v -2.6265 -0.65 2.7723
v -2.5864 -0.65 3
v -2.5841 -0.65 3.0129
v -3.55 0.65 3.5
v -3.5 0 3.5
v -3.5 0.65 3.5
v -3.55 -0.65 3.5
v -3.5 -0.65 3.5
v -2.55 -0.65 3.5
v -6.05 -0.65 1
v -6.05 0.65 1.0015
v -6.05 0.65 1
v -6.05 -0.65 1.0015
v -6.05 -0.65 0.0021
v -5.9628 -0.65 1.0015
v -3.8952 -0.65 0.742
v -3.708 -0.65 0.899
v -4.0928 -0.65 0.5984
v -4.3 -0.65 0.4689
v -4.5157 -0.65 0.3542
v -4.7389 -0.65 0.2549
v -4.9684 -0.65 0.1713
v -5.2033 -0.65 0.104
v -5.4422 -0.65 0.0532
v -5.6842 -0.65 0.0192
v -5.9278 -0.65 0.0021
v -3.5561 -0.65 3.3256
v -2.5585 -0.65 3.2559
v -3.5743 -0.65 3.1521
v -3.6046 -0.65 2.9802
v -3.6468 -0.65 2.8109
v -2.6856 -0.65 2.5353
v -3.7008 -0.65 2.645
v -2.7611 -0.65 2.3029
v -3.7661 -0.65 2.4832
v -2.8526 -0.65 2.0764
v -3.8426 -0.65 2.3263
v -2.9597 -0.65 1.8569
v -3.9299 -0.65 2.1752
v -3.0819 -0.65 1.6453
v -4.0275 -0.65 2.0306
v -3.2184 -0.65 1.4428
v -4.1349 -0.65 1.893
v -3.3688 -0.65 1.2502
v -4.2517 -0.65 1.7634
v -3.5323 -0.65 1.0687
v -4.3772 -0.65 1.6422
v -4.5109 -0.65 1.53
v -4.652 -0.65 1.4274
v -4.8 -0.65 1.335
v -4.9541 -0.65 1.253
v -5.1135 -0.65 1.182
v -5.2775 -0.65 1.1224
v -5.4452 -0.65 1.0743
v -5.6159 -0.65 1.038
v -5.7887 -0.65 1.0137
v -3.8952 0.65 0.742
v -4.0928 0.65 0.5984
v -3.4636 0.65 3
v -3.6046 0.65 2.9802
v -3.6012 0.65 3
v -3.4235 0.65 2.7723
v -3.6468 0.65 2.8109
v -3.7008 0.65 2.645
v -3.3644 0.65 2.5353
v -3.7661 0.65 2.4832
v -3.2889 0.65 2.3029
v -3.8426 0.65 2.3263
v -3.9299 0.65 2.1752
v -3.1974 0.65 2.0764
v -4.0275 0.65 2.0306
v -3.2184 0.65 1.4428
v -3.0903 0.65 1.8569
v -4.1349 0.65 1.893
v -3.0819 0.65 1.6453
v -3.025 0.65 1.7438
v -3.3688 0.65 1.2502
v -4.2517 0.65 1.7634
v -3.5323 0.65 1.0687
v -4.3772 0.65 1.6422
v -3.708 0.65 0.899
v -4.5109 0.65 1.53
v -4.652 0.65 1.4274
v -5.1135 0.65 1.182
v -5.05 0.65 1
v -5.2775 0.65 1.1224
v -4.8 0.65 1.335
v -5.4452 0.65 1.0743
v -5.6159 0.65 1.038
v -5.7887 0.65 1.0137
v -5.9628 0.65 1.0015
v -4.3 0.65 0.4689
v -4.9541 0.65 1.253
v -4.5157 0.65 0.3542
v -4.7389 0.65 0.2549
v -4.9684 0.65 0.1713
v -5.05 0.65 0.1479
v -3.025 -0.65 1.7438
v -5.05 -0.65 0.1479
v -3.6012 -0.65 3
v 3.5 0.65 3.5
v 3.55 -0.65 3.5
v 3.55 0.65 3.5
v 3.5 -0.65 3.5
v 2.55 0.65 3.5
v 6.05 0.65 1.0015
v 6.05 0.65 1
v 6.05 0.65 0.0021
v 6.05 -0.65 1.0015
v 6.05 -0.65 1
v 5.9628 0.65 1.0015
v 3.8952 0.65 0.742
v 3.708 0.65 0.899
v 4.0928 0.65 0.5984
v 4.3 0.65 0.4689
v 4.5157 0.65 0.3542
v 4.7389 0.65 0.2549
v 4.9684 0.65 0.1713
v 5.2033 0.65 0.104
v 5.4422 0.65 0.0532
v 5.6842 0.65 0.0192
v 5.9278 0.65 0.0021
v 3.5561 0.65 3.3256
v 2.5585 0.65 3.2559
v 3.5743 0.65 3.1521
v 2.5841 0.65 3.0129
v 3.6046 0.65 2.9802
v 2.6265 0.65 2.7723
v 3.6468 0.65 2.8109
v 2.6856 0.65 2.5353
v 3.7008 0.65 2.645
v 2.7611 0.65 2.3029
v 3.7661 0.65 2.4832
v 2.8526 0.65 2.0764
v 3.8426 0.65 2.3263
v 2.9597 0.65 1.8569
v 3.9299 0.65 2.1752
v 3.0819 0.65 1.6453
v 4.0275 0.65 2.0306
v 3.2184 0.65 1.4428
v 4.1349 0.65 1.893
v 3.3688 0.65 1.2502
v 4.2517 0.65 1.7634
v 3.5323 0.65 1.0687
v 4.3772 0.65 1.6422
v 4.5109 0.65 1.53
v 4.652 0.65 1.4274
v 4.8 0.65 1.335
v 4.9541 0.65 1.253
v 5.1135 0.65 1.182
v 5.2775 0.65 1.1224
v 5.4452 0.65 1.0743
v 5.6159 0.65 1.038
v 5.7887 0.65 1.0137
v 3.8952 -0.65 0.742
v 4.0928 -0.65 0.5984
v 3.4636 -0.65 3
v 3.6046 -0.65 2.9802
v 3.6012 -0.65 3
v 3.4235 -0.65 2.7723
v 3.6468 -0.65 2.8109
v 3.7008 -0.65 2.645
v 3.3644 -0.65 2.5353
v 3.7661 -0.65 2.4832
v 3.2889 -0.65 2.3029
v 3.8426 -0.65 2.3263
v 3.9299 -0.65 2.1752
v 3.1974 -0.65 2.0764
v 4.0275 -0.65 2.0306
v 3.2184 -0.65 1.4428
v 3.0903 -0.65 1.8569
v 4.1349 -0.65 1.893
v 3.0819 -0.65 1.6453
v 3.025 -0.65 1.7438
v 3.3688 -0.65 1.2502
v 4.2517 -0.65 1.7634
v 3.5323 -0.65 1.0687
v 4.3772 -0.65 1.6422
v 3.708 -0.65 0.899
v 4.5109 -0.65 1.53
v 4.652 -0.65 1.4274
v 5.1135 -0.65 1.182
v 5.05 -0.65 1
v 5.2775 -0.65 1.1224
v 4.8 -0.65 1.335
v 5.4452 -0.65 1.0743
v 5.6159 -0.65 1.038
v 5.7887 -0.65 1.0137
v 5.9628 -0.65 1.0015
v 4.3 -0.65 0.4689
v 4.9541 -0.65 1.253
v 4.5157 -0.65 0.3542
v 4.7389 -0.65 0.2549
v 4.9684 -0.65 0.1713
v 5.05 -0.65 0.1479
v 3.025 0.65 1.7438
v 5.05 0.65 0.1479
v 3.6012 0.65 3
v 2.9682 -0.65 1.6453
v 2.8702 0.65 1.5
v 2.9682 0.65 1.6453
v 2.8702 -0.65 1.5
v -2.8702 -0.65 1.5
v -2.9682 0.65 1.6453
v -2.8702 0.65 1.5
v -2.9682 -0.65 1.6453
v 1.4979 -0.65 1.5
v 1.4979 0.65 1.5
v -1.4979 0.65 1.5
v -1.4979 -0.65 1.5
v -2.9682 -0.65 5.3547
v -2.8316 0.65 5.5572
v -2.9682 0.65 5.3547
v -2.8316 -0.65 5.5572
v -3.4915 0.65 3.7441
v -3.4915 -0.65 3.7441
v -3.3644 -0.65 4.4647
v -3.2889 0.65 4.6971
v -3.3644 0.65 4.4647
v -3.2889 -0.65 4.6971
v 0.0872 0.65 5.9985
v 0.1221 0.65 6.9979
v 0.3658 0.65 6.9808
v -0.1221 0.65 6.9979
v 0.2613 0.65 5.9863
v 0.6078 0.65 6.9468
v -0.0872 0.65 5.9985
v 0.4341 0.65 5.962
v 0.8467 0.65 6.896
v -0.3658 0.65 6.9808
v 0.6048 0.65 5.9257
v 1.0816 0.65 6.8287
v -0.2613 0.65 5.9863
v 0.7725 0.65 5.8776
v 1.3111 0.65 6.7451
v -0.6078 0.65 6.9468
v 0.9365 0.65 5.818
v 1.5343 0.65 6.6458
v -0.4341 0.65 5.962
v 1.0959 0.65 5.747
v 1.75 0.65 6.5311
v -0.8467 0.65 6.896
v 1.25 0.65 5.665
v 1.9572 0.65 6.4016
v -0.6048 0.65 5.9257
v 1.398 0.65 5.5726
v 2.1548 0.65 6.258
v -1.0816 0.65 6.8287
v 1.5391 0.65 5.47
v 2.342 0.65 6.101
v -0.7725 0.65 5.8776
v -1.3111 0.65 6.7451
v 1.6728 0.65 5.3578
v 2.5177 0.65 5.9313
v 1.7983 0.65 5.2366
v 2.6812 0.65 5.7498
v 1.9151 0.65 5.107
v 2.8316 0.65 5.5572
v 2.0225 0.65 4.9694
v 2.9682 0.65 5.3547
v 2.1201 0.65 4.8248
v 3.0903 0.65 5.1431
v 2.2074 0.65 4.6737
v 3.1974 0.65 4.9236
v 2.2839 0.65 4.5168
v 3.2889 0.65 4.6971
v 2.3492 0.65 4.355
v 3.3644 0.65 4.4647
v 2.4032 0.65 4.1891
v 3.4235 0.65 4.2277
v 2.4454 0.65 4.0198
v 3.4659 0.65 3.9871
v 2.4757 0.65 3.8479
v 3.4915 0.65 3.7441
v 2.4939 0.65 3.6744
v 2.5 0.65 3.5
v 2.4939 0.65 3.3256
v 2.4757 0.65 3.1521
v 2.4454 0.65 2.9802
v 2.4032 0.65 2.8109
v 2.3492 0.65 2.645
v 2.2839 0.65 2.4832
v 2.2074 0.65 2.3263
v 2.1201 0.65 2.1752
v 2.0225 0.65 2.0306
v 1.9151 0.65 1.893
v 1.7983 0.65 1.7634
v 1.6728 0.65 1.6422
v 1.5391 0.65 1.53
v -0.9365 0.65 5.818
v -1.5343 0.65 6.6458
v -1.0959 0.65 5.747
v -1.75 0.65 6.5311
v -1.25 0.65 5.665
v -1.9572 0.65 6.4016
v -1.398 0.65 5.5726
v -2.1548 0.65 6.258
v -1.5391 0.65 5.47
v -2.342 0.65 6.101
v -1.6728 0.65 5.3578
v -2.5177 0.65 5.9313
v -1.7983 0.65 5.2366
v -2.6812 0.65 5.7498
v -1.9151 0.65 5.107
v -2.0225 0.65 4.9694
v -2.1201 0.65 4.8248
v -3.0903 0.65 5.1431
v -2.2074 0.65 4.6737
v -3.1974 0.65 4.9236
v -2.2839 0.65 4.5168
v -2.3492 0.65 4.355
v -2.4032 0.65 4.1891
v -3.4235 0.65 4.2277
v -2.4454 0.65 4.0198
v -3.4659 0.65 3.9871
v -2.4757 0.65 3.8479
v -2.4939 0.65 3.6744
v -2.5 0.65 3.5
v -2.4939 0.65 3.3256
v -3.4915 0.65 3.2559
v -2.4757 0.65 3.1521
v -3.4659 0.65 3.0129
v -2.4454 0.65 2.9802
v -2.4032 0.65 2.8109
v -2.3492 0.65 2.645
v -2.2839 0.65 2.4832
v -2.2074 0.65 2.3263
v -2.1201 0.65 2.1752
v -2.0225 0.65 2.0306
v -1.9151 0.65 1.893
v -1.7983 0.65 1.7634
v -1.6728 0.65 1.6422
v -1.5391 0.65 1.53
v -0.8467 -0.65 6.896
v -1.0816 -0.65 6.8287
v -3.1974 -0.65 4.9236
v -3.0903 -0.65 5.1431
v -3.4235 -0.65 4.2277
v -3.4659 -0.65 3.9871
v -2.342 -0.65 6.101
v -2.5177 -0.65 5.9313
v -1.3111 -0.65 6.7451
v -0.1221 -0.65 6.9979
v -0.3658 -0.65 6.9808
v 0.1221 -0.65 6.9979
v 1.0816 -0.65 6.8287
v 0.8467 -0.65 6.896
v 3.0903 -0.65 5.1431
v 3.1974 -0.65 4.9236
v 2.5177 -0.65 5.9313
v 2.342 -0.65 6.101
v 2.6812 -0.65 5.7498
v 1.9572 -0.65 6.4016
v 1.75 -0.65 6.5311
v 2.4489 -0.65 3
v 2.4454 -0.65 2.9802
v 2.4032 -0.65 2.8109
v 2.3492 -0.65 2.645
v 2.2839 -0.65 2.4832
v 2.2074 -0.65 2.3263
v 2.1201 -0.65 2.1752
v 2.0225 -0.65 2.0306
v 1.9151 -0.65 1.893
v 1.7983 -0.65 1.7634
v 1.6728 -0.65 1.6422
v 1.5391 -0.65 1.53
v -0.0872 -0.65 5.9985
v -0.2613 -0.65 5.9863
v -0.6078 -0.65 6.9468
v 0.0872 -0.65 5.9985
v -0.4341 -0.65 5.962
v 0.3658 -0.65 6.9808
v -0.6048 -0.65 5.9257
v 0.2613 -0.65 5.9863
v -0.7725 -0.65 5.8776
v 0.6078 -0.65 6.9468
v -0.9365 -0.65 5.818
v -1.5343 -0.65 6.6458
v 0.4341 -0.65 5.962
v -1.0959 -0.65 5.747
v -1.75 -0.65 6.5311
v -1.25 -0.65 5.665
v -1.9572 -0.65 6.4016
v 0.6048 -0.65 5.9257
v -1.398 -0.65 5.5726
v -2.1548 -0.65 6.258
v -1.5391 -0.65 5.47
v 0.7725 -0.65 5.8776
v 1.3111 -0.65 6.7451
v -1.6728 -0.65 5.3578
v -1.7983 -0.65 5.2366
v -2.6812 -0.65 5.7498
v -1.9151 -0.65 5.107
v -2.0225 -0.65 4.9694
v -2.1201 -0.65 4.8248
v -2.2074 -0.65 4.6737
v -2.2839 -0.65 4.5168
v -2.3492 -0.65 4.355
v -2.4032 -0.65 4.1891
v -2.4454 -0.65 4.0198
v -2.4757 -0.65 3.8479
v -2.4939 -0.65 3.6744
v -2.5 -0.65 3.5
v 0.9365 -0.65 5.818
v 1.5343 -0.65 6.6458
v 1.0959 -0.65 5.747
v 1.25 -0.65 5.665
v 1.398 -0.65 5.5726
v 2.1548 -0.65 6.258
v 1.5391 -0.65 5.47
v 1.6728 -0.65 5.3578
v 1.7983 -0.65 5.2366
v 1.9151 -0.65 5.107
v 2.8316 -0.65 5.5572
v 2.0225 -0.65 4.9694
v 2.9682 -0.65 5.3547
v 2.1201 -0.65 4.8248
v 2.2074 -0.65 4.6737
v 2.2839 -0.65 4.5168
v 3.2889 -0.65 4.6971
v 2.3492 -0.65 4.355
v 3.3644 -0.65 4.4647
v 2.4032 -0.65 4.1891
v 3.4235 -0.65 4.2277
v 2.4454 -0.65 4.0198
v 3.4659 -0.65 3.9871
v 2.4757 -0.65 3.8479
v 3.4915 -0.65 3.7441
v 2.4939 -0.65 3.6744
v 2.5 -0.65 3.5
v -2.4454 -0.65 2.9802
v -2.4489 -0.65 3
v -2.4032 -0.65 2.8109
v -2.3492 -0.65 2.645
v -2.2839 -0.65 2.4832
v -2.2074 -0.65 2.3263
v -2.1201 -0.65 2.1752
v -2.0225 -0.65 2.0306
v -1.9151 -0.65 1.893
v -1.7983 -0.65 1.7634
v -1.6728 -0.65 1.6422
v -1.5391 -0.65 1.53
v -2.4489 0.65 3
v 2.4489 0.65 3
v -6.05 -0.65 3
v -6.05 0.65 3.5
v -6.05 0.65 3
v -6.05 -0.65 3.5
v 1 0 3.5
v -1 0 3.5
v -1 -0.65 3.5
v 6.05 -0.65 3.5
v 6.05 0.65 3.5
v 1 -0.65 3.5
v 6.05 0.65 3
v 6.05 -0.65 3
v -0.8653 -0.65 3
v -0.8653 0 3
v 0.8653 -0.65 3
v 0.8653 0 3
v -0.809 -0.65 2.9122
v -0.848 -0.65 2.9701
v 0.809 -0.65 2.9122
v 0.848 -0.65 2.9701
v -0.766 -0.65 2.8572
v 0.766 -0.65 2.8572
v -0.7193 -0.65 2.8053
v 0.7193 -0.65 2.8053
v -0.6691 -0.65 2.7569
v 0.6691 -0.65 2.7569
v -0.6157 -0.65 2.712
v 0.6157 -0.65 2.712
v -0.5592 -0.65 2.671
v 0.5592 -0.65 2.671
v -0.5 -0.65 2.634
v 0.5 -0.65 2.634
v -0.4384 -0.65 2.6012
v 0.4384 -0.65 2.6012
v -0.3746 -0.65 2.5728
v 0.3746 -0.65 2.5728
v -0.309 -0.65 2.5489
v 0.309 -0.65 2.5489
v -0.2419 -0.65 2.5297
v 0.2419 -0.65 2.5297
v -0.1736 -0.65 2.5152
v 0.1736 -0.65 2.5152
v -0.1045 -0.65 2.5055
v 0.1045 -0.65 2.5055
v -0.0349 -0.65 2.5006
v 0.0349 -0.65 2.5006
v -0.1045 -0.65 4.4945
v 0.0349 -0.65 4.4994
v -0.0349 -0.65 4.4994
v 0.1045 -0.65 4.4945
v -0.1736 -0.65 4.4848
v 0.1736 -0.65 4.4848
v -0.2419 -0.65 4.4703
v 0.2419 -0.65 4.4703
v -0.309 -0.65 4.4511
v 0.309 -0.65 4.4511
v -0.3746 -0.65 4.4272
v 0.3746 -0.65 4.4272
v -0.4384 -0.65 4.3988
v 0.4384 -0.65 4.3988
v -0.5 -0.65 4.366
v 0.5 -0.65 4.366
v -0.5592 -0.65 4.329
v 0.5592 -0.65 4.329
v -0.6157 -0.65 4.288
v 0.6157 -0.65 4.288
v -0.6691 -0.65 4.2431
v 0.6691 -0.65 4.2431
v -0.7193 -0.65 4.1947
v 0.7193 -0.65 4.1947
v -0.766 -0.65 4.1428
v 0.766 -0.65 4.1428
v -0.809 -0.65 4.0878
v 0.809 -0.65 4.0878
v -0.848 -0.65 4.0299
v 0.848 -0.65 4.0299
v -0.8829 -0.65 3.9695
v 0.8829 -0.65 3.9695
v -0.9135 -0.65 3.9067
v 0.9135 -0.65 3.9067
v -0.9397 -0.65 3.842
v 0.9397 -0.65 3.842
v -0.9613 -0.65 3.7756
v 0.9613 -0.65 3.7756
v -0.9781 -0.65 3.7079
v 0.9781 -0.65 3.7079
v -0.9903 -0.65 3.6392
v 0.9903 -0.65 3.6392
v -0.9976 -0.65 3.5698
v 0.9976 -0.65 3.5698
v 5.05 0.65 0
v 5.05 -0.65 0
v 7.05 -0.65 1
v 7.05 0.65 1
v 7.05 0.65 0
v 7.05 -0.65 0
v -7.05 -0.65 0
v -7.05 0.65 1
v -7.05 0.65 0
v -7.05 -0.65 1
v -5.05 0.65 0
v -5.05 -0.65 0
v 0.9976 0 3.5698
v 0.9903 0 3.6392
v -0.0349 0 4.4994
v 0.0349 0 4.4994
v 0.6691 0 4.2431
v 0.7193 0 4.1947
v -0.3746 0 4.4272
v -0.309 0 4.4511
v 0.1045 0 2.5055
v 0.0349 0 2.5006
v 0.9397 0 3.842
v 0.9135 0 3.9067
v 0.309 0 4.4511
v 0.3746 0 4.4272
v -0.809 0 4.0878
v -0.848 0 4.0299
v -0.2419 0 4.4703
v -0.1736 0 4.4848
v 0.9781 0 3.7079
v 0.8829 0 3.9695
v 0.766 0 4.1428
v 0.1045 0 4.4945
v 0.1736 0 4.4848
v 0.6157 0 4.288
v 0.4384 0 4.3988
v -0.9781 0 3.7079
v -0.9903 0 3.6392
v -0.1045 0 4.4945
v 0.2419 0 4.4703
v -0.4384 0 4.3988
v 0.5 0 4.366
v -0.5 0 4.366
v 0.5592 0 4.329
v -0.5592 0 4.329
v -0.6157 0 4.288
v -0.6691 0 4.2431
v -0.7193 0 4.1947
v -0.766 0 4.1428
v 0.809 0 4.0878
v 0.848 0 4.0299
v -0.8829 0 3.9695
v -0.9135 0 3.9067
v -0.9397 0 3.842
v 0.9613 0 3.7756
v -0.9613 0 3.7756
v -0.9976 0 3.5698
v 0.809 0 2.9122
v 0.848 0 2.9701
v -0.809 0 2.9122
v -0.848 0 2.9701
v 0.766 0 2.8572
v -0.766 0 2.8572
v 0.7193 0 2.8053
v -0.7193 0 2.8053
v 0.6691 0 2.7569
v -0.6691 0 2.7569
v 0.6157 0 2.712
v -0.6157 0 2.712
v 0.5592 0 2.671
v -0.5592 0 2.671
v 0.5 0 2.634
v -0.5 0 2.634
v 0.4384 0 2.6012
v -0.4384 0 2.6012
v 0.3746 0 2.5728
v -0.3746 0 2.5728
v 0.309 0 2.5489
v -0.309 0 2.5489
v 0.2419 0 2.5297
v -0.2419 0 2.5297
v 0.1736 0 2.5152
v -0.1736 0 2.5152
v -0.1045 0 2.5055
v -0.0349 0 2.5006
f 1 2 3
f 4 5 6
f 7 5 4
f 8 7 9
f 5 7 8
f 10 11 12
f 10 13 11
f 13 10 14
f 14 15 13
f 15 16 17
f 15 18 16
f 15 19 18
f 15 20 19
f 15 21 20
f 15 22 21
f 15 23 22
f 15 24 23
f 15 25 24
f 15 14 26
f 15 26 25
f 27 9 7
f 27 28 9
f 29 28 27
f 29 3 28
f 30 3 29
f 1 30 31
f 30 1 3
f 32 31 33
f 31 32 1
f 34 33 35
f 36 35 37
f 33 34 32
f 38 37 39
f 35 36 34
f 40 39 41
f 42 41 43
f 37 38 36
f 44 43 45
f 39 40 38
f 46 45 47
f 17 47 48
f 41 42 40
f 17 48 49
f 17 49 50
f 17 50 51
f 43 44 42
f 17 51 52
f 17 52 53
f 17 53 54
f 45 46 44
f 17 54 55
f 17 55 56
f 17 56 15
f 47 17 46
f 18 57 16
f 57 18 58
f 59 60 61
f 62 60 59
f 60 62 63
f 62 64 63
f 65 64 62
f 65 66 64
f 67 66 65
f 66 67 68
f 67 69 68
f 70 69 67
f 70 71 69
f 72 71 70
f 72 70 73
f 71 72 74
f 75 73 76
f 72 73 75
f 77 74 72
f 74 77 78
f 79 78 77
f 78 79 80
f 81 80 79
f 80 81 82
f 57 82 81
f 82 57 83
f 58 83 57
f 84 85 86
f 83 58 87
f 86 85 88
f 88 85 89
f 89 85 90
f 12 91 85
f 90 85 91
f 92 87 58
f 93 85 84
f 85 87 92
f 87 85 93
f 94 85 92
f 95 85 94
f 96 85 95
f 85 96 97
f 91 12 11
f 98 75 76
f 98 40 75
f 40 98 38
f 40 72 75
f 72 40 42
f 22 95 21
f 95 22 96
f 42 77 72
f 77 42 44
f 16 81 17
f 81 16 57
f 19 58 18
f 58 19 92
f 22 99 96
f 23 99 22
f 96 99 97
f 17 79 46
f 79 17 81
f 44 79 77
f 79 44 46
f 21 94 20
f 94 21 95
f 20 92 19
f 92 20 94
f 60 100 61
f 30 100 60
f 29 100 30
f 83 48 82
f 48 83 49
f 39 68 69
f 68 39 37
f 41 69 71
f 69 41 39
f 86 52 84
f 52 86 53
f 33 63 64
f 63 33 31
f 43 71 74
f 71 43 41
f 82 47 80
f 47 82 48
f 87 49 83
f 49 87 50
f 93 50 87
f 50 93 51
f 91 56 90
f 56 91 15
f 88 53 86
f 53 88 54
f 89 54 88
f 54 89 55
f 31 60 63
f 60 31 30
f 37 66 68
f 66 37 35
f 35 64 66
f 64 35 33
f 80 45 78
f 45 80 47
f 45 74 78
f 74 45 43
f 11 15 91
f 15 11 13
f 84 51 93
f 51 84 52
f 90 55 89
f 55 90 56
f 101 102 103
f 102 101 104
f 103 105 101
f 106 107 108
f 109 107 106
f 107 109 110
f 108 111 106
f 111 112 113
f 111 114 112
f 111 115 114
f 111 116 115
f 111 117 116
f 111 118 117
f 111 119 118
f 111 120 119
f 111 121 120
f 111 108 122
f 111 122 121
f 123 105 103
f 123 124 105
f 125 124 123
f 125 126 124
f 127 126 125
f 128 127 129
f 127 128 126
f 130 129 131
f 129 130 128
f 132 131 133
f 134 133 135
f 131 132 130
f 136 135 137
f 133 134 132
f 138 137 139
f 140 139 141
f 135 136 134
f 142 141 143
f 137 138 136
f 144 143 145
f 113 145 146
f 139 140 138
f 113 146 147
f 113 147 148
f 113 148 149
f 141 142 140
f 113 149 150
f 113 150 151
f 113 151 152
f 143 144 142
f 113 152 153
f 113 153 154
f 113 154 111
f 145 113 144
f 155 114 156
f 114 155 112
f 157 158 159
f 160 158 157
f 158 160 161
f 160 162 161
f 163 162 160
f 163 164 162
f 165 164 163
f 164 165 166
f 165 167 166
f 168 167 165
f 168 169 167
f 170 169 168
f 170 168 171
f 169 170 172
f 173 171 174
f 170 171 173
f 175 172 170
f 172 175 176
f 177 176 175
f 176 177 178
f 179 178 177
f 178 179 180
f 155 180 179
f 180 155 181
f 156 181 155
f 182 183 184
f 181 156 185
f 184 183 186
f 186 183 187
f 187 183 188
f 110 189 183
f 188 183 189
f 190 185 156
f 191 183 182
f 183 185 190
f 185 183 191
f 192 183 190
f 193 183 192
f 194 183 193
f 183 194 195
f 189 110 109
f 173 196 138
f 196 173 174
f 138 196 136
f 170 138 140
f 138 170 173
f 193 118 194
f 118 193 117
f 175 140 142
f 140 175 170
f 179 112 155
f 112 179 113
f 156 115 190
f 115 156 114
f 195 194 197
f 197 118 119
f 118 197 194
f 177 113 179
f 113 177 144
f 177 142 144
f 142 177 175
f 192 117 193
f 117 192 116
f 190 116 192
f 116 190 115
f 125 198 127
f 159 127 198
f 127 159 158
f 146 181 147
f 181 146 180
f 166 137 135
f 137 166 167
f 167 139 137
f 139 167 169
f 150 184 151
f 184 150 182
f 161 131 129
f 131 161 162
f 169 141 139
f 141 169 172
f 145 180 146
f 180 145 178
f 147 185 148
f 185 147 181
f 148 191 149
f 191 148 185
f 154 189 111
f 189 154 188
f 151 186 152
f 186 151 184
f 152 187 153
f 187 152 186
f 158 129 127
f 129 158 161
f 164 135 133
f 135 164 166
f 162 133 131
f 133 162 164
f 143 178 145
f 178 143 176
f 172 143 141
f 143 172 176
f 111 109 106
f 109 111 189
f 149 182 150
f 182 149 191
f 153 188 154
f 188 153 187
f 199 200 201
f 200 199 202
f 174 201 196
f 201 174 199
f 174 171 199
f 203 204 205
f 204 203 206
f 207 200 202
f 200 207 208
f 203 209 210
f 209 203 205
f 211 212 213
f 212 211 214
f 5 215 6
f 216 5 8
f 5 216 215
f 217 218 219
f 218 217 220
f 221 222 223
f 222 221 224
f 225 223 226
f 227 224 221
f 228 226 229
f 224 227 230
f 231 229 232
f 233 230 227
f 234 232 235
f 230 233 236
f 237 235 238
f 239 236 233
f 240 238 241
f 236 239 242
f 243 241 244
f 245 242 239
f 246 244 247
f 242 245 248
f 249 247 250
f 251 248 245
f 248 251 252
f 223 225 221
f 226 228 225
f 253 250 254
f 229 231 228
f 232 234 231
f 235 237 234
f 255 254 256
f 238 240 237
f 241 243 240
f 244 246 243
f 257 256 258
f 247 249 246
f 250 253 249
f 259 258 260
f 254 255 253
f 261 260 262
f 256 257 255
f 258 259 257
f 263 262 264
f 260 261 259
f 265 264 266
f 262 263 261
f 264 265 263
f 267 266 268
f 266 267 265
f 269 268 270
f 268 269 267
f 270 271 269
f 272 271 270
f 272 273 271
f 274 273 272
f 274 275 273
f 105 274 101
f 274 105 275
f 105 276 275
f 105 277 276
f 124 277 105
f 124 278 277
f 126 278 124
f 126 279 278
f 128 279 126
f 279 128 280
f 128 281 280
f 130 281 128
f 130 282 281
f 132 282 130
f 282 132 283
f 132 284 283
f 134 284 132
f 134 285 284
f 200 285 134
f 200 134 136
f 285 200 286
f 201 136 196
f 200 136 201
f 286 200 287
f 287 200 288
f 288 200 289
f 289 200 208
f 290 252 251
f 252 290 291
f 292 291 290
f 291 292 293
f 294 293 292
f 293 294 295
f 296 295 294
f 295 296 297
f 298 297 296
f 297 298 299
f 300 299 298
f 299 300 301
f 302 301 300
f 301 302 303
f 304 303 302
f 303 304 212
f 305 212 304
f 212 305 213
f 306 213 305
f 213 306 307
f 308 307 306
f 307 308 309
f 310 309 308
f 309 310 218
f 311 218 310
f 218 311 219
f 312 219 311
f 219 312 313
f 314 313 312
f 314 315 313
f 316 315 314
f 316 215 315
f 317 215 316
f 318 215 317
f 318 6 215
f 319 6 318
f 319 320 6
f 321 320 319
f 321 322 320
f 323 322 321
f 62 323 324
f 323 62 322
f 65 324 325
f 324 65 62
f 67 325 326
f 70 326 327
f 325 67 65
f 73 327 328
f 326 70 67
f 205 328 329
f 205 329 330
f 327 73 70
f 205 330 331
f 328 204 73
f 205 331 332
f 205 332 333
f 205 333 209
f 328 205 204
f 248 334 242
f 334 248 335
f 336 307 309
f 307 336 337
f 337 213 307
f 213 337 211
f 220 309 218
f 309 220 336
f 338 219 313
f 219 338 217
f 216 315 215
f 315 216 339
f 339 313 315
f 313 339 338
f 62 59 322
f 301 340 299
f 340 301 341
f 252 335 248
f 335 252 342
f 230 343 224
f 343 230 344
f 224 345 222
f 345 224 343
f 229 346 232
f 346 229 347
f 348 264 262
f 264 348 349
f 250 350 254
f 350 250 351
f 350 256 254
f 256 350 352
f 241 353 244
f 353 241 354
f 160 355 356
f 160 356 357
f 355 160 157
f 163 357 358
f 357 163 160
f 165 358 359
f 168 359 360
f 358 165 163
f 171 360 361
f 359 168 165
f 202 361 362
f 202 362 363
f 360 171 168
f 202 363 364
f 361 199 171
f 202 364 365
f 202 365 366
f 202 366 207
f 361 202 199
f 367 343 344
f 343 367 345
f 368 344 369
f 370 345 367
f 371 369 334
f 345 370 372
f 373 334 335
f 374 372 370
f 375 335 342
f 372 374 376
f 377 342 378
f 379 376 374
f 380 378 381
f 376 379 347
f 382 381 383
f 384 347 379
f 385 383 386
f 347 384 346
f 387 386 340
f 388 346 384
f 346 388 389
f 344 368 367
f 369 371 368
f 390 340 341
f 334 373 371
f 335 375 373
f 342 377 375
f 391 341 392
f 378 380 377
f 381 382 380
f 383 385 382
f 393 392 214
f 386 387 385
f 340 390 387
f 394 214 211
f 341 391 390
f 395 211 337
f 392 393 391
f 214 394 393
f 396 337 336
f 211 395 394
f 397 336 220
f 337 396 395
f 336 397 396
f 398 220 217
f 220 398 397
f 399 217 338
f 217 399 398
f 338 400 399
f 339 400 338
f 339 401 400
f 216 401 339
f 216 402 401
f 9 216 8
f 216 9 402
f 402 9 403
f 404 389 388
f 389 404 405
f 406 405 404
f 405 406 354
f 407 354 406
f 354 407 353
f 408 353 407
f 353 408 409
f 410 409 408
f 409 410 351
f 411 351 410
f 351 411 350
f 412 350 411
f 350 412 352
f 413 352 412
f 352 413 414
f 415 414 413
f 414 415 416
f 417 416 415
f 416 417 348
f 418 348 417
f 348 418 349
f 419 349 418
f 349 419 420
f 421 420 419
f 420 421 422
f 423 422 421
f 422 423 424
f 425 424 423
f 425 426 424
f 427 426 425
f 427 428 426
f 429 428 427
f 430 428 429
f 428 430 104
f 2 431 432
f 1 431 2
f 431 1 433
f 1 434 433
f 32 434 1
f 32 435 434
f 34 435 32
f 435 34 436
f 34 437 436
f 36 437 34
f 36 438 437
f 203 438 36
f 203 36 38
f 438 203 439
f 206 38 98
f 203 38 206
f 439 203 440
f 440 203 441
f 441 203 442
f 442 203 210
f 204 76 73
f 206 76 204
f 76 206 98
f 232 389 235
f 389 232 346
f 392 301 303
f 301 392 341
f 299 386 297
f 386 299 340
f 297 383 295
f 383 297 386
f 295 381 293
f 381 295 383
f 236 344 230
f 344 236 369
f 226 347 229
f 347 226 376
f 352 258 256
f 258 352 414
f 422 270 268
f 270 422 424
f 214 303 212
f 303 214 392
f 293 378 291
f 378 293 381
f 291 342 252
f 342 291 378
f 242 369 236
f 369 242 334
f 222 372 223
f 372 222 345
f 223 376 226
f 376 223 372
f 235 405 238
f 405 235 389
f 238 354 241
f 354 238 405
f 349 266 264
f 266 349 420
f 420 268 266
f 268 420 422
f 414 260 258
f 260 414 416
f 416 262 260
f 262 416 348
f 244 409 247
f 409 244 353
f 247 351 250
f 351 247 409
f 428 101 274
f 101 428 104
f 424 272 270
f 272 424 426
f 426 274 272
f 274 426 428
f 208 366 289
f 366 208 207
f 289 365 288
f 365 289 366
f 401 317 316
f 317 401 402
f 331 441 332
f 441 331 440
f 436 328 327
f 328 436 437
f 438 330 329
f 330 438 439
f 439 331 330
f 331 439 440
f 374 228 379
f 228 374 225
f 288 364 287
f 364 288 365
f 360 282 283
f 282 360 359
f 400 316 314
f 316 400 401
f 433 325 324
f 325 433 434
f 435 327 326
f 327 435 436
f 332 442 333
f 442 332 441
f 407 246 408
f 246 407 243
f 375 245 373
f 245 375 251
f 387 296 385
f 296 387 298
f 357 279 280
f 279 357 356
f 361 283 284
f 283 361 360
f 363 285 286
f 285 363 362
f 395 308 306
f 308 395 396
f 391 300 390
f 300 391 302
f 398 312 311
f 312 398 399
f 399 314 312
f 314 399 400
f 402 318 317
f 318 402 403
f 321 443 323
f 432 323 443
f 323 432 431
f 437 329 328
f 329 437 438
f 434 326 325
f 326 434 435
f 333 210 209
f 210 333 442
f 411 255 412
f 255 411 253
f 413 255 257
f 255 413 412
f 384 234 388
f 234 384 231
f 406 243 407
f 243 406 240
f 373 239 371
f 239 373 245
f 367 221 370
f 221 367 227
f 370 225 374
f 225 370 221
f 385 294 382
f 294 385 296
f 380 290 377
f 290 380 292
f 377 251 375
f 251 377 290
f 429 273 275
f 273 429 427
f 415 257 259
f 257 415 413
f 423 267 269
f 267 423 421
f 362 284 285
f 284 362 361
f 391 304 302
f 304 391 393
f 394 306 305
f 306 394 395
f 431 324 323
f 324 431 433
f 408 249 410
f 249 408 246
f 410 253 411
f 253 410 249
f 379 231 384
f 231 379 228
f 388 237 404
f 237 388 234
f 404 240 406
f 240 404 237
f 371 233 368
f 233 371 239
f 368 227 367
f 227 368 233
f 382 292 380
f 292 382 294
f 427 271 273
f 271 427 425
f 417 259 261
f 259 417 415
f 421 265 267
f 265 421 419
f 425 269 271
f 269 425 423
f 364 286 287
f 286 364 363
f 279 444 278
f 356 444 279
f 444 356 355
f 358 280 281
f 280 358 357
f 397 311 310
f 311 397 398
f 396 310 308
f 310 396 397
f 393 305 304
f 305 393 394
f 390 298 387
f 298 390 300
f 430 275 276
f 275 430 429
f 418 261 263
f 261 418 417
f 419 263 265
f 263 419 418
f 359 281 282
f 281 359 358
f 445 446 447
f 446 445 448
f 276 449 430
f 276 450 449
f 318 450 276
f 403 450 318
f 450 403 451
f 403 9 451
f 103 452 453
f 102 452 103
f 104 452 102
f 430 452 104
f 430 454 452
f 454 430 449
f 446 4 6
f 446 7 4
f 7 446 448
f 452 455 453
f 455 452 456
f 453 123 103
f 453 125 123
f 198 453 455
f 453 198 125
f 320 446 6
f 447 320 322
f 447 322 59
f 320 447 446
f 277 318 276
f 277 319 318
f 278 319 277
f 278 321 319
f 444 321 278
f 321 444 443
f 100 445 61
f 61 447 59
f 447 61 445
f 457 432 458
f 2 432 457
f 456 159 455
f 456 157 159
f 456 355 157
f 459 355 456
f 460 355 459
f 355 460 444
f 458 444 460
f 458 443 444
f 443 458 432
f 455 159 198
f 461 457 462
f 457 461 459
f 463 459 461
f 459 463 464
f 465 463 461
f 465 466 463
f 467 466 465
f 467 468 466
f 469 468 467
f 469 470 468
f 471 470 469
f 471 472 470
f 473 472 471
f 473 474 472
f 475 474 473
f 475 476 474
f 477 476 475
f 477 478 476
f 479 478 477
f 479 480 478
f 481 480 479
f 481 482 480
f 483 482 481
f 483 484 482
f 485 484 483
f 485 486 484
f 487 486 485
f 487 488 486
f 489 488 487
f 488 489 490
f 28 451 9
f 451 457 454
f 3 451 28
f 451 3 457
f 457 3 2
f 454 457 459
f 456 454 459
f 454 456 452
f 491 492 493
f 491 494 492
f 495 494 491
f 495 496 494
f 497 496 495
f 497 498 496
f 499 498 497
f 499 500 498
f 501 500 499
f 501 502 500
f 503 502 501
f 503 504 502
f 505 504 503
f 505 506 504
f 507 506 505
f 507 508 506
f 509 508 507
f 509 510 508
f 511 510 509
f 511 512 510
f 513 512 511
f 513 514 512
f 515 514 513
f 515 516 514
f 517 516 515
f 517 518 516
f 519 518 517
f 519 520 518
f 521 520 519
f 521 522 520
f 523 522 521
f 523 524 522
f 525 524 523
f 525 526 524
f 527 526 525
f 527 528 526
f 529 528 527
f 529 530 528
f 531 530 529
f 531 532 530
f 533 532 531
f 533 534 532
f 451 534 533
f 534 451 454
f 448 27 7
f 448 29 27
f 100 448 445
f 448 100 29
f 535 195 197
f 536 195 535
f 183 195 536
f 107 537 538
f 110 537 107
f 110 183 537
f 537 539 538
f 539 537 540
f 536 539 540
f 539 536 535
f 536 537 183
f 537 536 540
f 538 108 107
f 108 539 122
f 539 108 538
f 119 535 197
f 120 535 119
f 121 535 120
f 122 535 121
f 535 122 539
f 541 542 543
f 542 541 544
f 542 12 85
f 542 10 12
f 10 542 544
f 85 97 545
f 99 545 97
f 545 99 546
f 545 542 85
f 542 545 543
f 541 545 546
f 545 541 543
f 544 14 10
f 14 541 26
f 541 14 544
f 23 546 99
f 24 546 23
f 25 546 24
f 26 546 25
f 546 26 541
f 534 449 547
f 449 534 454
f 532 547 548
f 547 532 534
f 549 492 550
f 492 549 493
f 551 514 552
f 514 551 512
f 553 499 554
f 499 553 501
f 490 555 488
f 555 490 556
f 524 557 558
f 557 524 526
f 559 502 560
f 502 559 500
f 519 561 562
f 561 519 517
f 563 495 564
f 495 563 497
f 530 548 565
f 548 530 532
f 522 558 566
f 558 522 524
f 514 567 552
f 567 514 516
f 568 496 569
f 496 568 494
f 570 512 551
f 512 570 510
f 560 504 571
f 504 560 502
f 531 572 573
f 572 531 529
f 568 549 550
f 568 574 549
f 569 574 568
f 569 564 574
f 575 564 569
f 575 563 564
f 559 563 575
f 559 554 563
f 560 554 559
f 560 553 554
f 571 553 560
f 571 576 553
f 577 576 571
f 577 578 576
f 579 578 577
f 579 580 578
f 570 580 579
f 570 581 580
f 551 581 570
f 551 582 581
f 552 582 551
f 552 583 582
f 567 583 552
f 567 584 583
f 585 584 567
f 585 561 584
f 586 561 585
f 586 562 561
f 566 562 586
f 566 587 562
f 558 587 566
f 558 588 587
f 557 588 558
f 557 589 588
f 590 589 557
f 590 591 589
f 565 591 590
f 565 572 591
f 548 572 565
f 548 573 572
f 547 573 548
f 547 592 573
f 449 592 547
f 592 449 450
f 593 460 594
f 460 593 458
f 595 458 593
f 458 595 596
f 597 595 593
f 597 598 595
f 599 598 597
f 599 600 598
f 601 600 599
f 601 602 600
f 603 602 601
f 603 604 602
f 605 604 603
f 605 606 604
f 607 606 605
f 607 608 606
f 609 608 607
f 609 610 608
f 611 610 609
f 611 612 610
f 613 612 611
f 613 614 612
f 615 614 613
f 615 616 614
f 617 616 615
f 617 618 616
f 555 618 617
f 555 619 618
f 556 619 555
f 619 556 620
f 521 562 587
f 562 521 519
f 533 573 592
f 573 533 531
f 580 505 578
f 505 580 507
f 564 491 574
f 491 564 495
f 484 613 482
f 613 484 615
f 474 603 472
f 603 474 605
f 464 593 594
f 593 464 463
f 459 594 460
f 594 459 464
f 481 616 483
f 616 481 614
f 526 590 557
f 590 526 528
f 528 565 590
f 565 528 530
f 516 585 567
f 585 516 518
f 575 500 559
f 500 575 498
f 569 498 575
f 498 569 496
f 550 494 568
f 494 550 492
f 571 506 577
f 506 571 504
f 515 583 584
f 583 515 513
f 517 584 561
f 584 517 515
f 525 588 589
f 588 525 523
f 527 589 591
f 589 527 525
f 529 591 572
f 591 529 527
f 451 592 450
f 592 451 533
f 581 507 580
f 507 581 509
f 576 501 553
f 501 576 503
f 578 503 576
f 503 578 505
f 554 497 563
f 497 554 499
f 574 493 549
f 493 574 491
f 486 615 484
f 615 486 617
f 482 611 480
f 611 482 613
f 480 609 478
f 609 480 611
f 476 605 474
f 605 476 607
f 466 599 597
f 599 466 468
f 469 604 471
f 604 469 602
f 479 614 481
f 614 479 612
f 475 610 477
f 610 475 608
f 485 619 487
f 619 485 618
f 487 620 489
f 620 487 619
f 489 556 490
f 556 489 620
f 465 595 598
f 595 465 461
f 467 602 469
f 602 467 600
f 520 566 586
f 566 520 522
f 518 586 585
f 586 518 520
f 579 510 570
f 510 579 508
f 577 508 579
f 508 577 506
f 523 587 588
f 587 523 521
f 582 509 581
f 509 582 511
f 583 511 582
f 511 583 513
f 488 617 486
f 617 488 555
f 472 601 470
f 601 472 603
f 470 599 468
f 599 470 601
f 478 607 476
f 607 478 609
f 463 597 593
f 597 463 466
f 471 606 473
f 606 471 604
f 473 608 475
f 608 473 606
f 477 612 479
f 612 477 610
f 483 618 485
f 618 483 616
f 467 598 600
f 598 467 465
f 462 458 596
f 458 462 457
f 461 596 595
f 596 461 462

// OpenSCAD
$fn=90;
// maten in centimeter
breedte_vlak=11.5;
breedte_randje=0.3;
breedte_overall=breedte_vlak+2*breedte_randje;
breedte_hoek=1.0;
breedte_ondervlak=breedte_vlak-2*breedte_hoek;
diepte_vlak=1.0;
diepte_randje=0.3;
diepte_overall=diepte_vlak+diepte_randje;
hoogte_vlak=4.0;
hoogte_randje=0.3;
hoogte_overall=hoogte_vlak+hoogte_randje;
hoogte_ondervlak=3.5;
dikte_vlak=hoogte_vlak-hoogte_ondervlak;
boog_straal_boven=hoogte_ondervlak;
boog_straal_onder=hoogte_ondervlak-1;
boog1_x=breedte_overall/2+boog_straal_boven-1;
boog1_y=hoogte_randje;
boog1_z=-boog_straal_boven-dikte_vlak;
boog2_x=-breedte_overall/2-boog_straal_boven+1;
boog2_y=boog1_y;
boog2_z=boog1_z;
voetstuk_breedte=2.0;
voetstuk_diepte=diepte_overall;
voetstuk_hoogte=1.0;
voetstuk1_x=boog1_x-voetstuk_breedte;
voetstuk1_y=boog_straal_boven-voetstuk_hoogte;
voetstuk1_z=-boog_straal_boven;
voetstuk2_x=voetstuk_breedte;
voetstuk2_y=voetstuk1_y;
bovenvoetstuk1_x=breedte_overall/2-voetstuk_breedte;
bovenvoetstuk1_y=-diepte_overall/2;
bovenvoetstuk1_z=-voetstuk_hoogte;

module vlak() {
    translate([-breedte_overall/2,-diepte_overall/2,-dikte_vlak]) {
        cube([breedte_overall, diepte_overall, dikte_vlak], center=false);
    }    
}

module front_rand() {
    translate([-breedte_overall/2,-diepte_overall/2,0]) {
        cube([breedte_overall, diepte_randje, hoogte_randje], center=false);
    }    
}

module zij_rand_links() {
    translate([-breedte_overall/2,-diepte_overall/2,0]) {
        cube([breedte_randje, diepte_overall, hoogte_randje], center=false);
    }    
}

module zij_rand_rechts() {
    mirror() zij_rand_links(); 
}

// snippet    translate([0,0,0]) rotate(180,[1,0,1]) 

module boog_outer() {
    translate([0,0,0]) // rotate(180,[1,0,1]) 
        linear_extrude(diepte_overall) intersection(){square(boog_straal_boven);circle(boog_straal_boven);}
}

module boog_inner() {
    translate([0,0,0]) // rotate(180,[1,0,1]) 
        linear_extrude(diepte_overall) intersection(){square(boog_straal_onder);circle(boog_straal_onder);}
}

module boog1() {
    translate([boog1_x,diepte_overall/2,0]) rotate(-180,[0,1,0]) rotate(90,[1,0,0]) difference() {
        boog_outer();
        boog_inner();
    }
}
        
module boog2() {
    translate([boog2_x,-diepte_overall/2,0])   rotate(-90,[1,0,0]) difference() {
        boog_outer();
        boog_inner();
    }
}

module voet1() {
    translate([voetstuk1_x,-voetstuk_diepte/2,voetstuk1_z]) {
        cube([voetstuk_breedte, voetstuk_diepte, voetstuk_hoogte], center=false);
    }    
}

module voet2() {
    mirror() voet1();    
}

module bovenvoet1() {
    translate([bovenvoetstuk1_x,bovenvoetstuk1_y,bovenvoetstuk1_z]) {
        cube([voetstuk_breedte, voetstuk_diepte, voetstuk_hoogte], center=false);
    }    
}

module bovenvoet2() {
    mirror() bovenvoet1();    
}

module boorgat1() {
    union() {
        translate([breedte_vlak/2-0.5,diepte_randje/2,-1]) {
            cylinder(h=4,d=0.45, center=false);
        } 
        translate([breedte_vlak/2-0.5,diepte_randje/2,-2.7]) {
            cylinder(h=2,d=0.75, center=false);
        } 
    }
}

module boorgat2() { mirror() boorgat1(); }

module voetstuk() {
    union() {
        vlak();
        front_rand();
        zij_rand_links();
        zij_rand_rechts();
        boog1();
        boog2();
        voet1();
        voet2();
        bovenvoet1();
        bovenvoet2();
    }
}

module voetstuk_compleet() {
    difference() {
        voetstuk();
        boorgat1();
        boorgat2();
    }
}

//voetstuk_compleet();

module top_boog_outer() {
        translate([0,0,0]) // rotate(180,[1,0,1]) 
        linear_extrude(diepte_overall) intersection(){
            translate([-boog_straal_boven,-2,0]) square([2*boog_straal_boven,boog_straal_boven+2],center=false);
            circle(boog_straal_boven);
            }
}

module top_boog_inner() {
        translate([0,0,0]) // rotate(180,[1,0,1]) 
        linear_extrude(diepte_overall) intersection(){
            translate([-boog_straal_onder,-2,0]) square([2*boog_straal_onder,boog_straal_onder+2],center=false);
            circle(boog_straal_onder);
            }
}


module top_left() {
    translate([-breedte_overall/2,-diepte_overall/2,boog_straal_boven]) rotate(-90,[1,0,0]) difference() {
        boog_outer();
        boog_inner();
    }
}

module top_right() {
    translate([breedte_overall/2,diepte_overall/2,boog_straal_boven]) rotate(180,[0,0,1]) rotate(-90,[1,0,0]) difference() {
            boog_outer();
            boog_inner();
    }
}

module top_boog() {
    translate([0,diepte_overall/2,boog_straal_boven]) rotate(90, [1,0,0]) difference() {
        top_boog_outer();
        top_boog_inner();
    }
}

translate([0,0,boog_straal_boven]) vlak();
top_left();
top_right();
top_boog();
translate([breedte_overall/2-1, -voetstuk_diepte/2, 0]) cube([voetstuk_breedte, voetstuk_diepte, voetstuk_hoogte], center=false);
translate([-breedte_overall/2-1, -voetstuk_diepte/2, 0]) cube([voetstuk_breedte, voetstuk_diepte, voetstuk_hoogte], center=false);
translate([0,0,boog_straal_boven]) rotate(90, [1,0,0]) cylinder(h=diepte_overall/2,d=2, center=false);
